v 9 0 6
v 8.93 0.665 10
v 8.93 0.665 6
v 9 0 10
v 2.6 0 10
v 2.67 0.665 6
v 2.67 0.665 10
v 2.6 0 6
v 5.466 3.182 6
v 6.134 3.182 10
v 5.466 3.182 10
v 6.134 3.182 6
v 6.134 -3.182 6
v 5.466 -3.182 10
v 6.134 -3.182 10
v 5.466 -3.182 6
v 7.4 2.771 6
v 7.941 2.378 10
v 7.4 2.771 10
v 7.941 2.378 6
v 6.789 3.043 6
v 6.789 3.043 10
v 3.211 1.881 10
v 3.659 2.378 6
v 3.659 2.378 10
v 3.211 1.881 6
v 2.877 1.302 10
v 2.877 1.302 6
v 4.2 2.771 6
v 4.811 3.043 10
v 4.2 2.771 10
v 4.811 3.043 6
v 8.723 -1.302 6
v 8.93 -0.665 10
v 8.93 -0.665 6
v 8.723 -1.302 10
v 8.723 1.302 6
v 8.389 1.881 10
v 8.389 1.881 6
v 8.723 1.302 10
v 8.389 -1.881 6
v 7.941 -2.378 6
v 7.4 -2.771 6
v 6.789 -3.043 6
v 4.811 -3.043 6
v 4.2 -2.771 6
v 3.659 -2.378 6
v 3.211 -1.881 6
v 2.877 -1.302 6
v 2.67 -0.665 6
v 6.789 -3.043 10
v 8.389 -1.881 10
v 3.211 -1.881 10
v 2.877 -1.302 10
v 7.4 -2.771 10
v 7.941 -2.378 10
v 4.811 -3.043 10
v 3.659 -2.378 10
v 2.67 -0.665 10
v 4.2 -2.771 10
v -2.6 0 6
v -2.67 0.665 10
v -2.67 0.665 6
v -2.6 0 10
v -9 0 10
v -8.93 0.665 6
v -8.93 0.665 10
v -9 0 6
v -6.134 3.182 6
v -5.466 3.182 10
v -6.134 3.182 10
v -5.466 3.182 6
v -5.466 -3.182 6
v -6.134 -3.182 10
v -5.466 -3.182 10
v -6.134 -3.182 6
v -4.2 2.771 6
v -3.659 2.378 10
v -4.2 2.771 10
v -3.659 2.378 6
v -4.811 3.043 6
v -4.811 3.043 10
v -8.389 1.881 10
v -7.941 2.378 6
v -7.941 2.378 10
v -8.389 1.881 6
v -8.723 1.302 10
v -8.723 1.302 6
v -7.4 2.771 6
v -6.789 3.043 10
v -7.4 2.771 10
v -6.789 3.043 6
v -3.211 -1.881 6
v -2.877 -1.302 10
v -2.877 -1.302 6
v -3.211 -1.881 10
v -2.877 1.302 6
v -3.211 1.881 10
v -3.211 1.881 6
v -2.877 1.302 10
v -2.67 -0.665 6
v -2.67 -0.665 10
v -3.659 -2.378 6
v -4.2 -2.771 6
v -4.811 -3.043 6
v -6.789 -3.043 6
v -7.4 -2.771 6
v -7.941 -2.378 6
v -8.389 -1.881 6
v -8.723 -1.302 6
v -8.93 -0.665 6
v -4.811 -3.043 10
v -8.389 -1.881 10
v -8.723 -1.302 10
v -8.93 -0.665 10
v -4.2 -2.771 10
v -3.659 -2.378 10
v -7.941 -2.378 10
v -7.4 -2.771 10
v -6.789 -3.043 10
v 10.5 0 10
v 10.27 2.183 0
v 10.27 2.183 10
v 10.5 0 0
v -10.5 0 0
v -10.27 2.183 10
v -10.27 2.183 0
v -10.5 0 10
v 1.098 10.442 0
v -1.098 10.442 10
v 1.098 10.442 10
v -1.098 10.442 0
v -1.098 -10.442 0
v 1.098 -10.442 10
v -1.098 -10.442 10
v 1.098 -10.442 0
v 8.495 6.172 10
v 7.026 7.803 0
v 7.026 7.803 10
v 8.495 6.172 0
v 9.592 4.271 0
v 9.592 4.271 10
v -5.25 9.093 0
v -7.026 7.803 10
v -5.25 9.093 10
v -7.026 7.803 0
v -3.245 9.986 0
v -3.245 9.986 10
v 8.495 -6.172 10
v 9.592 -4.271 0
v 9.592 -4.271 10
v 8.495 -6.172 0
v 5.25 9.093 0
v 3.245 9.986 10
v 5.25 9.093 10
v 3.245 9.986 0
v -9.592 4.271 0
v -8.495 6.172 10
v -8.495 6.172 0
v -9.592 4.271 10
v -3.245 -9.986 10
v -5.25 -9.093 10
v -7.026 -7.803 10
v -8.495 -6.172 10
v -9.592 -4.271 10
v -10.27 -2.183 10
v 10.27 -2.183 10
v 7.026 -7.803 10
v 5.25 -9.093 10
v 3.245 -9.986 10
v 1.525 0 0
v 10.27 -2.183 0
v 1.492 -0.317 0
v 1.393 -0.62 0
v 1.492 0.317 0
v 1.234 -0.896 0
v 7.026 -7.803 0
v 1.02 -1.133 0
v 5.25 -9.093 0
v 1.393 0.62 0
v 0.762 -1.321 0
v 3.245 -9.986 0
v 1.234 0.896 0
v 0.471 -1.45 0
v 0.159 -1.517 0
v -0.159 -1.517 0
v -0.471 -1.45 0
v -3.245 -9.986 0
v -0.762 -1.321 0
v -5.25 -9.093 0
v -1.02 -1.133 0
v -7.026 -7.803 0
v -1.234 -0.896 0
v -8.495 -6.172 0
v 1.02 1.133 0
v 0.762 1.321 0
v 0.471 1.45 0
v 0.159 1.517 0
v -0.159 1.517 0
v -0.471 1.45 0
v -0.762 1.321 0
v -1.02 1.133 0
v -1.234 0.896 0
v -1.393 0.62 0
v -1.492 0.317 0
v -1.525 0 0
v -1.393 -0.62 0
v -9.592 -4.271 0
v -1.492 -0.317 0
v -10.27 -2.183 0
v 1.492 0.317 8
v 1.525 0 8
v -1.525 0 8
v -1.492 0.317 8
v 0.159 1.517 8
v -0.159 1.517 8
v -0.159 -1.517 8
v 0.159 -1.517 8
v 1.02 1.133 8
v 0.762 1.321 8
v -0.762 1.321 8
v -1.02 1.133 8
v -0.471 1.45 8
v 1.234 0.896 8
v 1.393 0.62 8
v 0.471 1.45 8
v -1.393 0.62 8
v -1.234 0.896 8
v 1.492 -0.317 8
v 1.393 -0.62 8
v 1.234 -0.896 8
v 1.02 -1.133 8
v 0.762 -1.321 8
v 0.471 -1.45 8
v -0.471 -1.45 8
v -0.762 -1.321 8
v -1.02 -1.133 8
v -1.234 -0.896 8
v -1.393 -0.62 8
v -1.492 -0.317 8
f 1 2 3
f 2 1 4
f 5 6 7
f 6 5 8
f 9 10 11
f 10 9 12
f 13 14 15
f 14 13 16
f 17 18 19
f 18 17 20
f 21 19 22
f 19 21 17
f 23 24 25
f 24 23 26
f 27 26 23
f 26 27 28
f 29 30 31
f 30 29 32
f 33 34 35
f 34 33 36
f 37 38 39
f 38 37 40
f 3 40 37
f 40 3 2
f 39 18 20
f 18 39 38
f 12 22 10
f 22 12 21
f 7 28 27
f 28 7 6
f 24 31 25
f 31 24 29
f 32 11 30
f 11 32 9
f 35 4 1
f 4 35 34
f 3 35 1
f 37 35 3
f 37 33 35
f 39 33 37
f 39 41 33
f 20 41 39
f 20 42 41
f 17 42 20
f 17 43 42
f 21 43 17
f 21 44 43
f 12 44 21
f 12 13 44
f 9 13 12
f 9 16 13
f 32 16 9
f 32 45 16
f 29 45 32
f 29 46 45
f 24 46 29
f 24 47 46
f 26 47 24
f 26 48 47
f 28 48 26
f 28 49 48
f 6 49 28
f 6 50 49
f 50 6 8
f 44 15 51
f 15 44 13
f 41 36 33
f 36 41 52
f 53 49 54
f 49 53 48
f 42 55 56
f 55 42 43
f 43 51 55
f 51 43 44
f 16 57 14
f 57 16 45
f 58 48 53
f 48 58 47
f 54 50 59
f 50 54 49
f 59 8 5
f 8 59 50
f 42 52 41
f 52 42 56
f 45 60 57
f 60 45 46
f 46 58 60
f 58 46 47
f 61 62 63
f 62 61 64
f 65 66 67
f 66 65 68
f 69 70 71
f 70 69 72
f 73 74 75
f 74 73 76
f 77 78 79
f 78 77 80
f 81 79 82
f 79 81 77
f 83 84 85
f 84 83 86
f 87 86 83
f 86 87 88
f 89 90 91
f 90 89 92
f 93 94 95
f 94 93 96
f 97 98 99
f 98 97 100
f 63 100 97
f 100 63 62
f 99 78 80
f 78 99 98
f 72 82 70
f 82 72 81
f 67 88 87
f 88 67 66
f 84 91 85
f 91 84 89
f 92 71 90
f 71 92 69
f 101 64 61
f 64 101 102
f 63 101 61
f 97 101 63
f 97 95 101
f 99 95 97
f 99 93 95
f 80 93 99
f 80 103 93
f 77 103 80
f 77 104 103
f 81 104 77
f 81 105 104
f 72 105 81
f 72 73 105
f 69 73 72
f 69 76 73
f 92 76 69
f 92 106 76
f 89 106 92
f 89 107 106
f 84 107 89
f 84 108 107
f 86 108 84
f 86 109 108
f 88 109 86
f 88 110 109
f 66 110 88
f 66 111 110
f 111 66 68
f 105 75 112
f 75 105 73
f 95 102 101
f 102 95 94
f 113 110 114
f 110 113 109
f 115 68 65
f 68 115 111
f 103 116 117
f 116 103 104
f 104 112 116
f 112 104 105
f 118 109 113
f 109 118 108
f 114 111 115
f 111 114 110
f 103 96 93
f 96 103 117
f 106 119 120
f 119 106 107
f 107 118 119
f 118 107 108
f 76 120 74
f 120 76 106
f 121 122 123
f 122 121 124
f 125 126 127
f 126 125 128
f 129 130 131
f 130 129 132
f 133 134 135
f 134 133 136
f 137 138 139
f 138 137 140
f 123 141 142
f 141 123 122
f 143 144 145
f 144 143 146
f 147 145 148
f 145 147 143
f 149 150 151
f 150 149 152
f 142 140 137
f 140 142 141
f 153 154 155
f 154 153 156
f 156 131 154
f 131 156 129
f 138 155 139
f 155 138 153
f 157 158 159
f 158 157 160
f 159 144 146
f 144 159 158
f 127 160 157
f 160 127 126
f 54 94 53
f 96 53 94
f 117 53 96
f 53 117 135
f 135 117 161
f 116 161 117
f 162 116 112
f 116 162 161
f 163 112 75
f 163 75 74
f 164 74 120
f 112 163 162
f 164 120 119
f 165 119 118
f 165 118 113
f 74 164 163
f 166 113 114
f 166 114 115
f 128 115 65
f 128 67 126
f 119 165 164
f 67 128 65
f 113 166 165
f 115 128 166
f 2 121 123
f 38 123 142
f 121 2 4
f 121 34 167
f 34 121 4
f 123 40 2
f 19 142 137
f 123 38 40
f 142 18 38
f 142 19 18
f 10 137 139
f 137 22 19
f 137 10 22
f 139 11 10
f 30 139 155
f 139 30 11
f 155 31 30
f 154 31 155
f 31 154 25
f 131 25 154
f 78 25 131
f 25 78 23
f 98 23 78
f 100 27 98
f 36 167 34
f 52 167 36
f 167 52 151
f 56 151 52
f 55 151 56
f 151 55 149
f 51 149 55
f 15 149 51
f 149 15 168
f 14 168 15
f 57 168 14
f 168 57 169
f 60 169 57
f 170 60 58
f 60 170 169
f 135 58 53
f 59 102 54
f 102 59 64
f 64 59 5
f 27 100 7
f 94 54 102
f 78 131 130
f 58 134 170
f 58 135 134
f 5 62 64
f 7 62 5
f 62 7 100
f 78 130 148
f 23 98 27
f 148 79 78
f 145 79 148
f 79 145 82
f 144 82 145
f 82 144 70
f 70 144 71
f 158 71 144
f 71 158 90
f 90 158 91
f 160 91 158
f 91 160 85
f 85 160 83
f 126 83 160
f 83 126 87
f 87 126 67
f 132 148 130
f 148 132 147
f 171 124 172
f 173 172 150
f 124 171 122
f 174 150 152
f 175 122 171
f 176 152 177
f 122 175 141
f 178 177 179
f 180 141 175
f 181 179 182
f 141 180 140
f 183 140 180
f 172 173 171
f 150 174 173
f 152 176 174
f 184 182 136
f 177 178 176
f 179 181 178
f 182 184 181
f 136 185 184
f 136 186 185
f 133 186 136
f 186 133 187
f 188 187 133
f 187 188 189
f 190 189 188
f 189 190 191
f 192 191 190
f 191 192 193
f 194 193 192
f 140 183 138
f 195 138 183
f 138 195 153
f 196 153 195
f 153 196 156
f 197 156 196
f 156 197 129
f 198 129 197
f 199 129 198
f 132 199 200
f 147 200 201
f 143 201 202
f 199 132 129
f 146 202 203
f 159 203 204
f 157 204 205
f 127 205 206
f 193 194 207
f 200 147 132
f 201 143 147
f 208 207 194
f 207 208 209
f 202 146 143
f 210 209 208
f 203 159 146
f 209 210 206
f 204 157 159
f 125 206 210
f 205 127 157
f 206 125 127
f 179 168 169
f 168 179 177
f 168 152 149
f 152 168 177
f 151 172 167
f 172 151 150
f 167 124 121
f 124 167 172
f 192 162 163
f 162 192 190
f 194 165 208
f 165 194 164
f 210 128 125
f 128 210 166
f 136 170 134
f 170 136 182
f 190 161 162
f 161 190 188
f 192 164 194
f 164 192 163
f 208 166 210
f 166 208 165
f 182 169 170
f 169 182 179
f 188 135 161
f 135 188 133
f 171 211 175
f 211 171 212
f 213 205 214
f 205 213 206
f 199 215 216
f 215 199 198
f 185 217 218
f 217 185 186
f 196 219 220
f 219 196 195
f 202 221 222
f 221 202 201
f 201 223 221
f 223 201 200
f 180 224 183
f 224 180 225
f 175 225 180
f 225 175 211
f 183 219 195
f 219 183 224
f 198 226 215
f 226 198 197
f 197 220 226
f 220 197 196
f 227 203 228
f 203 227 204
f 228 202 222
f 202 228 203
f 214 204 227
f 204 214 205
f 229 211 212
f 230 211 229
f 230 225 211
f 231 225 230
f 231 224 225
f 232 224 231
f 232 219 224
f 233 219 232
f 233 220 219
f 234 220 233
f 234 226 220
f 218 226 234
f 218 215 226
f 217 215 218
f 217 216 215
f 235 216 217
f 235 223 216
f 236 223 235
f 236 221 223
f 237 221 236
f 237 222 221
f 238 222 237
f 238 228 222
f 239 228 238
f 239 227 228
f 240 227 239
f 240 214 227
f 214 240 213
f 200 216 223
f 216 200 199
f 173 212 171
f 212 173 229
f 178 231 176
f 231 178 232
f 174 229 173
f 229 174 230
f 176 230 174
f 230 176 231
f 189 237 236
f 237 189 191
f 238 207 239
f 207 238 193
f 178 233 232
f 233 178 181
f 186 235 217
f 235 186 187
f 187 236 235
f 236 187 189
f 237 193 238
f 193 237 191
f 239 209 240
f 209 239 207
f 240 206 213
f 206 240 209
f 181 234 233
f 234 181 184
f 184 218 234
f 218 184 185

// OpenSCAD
diameter = 21;
magnet_hole_dia = 6.4;
magnet_hole_depth = 4;
height = 10;
shaft_dia = 3.05;
shaft_depth = 8;
hole_offset = 5.8;


difference() {
  cylinder(h=height,d=diameter);
  for (i = [hole_offset,-hole_offset]) {
    translate([i,0,height]) 
      cylinder(h=magnet_hole_depth*2,d=magnet_hole_dia,center=true,$fn=30);
  }
  cylinder(h=2*shaft_depth, d=shaft_dia, center=true,$fn=30);
}
